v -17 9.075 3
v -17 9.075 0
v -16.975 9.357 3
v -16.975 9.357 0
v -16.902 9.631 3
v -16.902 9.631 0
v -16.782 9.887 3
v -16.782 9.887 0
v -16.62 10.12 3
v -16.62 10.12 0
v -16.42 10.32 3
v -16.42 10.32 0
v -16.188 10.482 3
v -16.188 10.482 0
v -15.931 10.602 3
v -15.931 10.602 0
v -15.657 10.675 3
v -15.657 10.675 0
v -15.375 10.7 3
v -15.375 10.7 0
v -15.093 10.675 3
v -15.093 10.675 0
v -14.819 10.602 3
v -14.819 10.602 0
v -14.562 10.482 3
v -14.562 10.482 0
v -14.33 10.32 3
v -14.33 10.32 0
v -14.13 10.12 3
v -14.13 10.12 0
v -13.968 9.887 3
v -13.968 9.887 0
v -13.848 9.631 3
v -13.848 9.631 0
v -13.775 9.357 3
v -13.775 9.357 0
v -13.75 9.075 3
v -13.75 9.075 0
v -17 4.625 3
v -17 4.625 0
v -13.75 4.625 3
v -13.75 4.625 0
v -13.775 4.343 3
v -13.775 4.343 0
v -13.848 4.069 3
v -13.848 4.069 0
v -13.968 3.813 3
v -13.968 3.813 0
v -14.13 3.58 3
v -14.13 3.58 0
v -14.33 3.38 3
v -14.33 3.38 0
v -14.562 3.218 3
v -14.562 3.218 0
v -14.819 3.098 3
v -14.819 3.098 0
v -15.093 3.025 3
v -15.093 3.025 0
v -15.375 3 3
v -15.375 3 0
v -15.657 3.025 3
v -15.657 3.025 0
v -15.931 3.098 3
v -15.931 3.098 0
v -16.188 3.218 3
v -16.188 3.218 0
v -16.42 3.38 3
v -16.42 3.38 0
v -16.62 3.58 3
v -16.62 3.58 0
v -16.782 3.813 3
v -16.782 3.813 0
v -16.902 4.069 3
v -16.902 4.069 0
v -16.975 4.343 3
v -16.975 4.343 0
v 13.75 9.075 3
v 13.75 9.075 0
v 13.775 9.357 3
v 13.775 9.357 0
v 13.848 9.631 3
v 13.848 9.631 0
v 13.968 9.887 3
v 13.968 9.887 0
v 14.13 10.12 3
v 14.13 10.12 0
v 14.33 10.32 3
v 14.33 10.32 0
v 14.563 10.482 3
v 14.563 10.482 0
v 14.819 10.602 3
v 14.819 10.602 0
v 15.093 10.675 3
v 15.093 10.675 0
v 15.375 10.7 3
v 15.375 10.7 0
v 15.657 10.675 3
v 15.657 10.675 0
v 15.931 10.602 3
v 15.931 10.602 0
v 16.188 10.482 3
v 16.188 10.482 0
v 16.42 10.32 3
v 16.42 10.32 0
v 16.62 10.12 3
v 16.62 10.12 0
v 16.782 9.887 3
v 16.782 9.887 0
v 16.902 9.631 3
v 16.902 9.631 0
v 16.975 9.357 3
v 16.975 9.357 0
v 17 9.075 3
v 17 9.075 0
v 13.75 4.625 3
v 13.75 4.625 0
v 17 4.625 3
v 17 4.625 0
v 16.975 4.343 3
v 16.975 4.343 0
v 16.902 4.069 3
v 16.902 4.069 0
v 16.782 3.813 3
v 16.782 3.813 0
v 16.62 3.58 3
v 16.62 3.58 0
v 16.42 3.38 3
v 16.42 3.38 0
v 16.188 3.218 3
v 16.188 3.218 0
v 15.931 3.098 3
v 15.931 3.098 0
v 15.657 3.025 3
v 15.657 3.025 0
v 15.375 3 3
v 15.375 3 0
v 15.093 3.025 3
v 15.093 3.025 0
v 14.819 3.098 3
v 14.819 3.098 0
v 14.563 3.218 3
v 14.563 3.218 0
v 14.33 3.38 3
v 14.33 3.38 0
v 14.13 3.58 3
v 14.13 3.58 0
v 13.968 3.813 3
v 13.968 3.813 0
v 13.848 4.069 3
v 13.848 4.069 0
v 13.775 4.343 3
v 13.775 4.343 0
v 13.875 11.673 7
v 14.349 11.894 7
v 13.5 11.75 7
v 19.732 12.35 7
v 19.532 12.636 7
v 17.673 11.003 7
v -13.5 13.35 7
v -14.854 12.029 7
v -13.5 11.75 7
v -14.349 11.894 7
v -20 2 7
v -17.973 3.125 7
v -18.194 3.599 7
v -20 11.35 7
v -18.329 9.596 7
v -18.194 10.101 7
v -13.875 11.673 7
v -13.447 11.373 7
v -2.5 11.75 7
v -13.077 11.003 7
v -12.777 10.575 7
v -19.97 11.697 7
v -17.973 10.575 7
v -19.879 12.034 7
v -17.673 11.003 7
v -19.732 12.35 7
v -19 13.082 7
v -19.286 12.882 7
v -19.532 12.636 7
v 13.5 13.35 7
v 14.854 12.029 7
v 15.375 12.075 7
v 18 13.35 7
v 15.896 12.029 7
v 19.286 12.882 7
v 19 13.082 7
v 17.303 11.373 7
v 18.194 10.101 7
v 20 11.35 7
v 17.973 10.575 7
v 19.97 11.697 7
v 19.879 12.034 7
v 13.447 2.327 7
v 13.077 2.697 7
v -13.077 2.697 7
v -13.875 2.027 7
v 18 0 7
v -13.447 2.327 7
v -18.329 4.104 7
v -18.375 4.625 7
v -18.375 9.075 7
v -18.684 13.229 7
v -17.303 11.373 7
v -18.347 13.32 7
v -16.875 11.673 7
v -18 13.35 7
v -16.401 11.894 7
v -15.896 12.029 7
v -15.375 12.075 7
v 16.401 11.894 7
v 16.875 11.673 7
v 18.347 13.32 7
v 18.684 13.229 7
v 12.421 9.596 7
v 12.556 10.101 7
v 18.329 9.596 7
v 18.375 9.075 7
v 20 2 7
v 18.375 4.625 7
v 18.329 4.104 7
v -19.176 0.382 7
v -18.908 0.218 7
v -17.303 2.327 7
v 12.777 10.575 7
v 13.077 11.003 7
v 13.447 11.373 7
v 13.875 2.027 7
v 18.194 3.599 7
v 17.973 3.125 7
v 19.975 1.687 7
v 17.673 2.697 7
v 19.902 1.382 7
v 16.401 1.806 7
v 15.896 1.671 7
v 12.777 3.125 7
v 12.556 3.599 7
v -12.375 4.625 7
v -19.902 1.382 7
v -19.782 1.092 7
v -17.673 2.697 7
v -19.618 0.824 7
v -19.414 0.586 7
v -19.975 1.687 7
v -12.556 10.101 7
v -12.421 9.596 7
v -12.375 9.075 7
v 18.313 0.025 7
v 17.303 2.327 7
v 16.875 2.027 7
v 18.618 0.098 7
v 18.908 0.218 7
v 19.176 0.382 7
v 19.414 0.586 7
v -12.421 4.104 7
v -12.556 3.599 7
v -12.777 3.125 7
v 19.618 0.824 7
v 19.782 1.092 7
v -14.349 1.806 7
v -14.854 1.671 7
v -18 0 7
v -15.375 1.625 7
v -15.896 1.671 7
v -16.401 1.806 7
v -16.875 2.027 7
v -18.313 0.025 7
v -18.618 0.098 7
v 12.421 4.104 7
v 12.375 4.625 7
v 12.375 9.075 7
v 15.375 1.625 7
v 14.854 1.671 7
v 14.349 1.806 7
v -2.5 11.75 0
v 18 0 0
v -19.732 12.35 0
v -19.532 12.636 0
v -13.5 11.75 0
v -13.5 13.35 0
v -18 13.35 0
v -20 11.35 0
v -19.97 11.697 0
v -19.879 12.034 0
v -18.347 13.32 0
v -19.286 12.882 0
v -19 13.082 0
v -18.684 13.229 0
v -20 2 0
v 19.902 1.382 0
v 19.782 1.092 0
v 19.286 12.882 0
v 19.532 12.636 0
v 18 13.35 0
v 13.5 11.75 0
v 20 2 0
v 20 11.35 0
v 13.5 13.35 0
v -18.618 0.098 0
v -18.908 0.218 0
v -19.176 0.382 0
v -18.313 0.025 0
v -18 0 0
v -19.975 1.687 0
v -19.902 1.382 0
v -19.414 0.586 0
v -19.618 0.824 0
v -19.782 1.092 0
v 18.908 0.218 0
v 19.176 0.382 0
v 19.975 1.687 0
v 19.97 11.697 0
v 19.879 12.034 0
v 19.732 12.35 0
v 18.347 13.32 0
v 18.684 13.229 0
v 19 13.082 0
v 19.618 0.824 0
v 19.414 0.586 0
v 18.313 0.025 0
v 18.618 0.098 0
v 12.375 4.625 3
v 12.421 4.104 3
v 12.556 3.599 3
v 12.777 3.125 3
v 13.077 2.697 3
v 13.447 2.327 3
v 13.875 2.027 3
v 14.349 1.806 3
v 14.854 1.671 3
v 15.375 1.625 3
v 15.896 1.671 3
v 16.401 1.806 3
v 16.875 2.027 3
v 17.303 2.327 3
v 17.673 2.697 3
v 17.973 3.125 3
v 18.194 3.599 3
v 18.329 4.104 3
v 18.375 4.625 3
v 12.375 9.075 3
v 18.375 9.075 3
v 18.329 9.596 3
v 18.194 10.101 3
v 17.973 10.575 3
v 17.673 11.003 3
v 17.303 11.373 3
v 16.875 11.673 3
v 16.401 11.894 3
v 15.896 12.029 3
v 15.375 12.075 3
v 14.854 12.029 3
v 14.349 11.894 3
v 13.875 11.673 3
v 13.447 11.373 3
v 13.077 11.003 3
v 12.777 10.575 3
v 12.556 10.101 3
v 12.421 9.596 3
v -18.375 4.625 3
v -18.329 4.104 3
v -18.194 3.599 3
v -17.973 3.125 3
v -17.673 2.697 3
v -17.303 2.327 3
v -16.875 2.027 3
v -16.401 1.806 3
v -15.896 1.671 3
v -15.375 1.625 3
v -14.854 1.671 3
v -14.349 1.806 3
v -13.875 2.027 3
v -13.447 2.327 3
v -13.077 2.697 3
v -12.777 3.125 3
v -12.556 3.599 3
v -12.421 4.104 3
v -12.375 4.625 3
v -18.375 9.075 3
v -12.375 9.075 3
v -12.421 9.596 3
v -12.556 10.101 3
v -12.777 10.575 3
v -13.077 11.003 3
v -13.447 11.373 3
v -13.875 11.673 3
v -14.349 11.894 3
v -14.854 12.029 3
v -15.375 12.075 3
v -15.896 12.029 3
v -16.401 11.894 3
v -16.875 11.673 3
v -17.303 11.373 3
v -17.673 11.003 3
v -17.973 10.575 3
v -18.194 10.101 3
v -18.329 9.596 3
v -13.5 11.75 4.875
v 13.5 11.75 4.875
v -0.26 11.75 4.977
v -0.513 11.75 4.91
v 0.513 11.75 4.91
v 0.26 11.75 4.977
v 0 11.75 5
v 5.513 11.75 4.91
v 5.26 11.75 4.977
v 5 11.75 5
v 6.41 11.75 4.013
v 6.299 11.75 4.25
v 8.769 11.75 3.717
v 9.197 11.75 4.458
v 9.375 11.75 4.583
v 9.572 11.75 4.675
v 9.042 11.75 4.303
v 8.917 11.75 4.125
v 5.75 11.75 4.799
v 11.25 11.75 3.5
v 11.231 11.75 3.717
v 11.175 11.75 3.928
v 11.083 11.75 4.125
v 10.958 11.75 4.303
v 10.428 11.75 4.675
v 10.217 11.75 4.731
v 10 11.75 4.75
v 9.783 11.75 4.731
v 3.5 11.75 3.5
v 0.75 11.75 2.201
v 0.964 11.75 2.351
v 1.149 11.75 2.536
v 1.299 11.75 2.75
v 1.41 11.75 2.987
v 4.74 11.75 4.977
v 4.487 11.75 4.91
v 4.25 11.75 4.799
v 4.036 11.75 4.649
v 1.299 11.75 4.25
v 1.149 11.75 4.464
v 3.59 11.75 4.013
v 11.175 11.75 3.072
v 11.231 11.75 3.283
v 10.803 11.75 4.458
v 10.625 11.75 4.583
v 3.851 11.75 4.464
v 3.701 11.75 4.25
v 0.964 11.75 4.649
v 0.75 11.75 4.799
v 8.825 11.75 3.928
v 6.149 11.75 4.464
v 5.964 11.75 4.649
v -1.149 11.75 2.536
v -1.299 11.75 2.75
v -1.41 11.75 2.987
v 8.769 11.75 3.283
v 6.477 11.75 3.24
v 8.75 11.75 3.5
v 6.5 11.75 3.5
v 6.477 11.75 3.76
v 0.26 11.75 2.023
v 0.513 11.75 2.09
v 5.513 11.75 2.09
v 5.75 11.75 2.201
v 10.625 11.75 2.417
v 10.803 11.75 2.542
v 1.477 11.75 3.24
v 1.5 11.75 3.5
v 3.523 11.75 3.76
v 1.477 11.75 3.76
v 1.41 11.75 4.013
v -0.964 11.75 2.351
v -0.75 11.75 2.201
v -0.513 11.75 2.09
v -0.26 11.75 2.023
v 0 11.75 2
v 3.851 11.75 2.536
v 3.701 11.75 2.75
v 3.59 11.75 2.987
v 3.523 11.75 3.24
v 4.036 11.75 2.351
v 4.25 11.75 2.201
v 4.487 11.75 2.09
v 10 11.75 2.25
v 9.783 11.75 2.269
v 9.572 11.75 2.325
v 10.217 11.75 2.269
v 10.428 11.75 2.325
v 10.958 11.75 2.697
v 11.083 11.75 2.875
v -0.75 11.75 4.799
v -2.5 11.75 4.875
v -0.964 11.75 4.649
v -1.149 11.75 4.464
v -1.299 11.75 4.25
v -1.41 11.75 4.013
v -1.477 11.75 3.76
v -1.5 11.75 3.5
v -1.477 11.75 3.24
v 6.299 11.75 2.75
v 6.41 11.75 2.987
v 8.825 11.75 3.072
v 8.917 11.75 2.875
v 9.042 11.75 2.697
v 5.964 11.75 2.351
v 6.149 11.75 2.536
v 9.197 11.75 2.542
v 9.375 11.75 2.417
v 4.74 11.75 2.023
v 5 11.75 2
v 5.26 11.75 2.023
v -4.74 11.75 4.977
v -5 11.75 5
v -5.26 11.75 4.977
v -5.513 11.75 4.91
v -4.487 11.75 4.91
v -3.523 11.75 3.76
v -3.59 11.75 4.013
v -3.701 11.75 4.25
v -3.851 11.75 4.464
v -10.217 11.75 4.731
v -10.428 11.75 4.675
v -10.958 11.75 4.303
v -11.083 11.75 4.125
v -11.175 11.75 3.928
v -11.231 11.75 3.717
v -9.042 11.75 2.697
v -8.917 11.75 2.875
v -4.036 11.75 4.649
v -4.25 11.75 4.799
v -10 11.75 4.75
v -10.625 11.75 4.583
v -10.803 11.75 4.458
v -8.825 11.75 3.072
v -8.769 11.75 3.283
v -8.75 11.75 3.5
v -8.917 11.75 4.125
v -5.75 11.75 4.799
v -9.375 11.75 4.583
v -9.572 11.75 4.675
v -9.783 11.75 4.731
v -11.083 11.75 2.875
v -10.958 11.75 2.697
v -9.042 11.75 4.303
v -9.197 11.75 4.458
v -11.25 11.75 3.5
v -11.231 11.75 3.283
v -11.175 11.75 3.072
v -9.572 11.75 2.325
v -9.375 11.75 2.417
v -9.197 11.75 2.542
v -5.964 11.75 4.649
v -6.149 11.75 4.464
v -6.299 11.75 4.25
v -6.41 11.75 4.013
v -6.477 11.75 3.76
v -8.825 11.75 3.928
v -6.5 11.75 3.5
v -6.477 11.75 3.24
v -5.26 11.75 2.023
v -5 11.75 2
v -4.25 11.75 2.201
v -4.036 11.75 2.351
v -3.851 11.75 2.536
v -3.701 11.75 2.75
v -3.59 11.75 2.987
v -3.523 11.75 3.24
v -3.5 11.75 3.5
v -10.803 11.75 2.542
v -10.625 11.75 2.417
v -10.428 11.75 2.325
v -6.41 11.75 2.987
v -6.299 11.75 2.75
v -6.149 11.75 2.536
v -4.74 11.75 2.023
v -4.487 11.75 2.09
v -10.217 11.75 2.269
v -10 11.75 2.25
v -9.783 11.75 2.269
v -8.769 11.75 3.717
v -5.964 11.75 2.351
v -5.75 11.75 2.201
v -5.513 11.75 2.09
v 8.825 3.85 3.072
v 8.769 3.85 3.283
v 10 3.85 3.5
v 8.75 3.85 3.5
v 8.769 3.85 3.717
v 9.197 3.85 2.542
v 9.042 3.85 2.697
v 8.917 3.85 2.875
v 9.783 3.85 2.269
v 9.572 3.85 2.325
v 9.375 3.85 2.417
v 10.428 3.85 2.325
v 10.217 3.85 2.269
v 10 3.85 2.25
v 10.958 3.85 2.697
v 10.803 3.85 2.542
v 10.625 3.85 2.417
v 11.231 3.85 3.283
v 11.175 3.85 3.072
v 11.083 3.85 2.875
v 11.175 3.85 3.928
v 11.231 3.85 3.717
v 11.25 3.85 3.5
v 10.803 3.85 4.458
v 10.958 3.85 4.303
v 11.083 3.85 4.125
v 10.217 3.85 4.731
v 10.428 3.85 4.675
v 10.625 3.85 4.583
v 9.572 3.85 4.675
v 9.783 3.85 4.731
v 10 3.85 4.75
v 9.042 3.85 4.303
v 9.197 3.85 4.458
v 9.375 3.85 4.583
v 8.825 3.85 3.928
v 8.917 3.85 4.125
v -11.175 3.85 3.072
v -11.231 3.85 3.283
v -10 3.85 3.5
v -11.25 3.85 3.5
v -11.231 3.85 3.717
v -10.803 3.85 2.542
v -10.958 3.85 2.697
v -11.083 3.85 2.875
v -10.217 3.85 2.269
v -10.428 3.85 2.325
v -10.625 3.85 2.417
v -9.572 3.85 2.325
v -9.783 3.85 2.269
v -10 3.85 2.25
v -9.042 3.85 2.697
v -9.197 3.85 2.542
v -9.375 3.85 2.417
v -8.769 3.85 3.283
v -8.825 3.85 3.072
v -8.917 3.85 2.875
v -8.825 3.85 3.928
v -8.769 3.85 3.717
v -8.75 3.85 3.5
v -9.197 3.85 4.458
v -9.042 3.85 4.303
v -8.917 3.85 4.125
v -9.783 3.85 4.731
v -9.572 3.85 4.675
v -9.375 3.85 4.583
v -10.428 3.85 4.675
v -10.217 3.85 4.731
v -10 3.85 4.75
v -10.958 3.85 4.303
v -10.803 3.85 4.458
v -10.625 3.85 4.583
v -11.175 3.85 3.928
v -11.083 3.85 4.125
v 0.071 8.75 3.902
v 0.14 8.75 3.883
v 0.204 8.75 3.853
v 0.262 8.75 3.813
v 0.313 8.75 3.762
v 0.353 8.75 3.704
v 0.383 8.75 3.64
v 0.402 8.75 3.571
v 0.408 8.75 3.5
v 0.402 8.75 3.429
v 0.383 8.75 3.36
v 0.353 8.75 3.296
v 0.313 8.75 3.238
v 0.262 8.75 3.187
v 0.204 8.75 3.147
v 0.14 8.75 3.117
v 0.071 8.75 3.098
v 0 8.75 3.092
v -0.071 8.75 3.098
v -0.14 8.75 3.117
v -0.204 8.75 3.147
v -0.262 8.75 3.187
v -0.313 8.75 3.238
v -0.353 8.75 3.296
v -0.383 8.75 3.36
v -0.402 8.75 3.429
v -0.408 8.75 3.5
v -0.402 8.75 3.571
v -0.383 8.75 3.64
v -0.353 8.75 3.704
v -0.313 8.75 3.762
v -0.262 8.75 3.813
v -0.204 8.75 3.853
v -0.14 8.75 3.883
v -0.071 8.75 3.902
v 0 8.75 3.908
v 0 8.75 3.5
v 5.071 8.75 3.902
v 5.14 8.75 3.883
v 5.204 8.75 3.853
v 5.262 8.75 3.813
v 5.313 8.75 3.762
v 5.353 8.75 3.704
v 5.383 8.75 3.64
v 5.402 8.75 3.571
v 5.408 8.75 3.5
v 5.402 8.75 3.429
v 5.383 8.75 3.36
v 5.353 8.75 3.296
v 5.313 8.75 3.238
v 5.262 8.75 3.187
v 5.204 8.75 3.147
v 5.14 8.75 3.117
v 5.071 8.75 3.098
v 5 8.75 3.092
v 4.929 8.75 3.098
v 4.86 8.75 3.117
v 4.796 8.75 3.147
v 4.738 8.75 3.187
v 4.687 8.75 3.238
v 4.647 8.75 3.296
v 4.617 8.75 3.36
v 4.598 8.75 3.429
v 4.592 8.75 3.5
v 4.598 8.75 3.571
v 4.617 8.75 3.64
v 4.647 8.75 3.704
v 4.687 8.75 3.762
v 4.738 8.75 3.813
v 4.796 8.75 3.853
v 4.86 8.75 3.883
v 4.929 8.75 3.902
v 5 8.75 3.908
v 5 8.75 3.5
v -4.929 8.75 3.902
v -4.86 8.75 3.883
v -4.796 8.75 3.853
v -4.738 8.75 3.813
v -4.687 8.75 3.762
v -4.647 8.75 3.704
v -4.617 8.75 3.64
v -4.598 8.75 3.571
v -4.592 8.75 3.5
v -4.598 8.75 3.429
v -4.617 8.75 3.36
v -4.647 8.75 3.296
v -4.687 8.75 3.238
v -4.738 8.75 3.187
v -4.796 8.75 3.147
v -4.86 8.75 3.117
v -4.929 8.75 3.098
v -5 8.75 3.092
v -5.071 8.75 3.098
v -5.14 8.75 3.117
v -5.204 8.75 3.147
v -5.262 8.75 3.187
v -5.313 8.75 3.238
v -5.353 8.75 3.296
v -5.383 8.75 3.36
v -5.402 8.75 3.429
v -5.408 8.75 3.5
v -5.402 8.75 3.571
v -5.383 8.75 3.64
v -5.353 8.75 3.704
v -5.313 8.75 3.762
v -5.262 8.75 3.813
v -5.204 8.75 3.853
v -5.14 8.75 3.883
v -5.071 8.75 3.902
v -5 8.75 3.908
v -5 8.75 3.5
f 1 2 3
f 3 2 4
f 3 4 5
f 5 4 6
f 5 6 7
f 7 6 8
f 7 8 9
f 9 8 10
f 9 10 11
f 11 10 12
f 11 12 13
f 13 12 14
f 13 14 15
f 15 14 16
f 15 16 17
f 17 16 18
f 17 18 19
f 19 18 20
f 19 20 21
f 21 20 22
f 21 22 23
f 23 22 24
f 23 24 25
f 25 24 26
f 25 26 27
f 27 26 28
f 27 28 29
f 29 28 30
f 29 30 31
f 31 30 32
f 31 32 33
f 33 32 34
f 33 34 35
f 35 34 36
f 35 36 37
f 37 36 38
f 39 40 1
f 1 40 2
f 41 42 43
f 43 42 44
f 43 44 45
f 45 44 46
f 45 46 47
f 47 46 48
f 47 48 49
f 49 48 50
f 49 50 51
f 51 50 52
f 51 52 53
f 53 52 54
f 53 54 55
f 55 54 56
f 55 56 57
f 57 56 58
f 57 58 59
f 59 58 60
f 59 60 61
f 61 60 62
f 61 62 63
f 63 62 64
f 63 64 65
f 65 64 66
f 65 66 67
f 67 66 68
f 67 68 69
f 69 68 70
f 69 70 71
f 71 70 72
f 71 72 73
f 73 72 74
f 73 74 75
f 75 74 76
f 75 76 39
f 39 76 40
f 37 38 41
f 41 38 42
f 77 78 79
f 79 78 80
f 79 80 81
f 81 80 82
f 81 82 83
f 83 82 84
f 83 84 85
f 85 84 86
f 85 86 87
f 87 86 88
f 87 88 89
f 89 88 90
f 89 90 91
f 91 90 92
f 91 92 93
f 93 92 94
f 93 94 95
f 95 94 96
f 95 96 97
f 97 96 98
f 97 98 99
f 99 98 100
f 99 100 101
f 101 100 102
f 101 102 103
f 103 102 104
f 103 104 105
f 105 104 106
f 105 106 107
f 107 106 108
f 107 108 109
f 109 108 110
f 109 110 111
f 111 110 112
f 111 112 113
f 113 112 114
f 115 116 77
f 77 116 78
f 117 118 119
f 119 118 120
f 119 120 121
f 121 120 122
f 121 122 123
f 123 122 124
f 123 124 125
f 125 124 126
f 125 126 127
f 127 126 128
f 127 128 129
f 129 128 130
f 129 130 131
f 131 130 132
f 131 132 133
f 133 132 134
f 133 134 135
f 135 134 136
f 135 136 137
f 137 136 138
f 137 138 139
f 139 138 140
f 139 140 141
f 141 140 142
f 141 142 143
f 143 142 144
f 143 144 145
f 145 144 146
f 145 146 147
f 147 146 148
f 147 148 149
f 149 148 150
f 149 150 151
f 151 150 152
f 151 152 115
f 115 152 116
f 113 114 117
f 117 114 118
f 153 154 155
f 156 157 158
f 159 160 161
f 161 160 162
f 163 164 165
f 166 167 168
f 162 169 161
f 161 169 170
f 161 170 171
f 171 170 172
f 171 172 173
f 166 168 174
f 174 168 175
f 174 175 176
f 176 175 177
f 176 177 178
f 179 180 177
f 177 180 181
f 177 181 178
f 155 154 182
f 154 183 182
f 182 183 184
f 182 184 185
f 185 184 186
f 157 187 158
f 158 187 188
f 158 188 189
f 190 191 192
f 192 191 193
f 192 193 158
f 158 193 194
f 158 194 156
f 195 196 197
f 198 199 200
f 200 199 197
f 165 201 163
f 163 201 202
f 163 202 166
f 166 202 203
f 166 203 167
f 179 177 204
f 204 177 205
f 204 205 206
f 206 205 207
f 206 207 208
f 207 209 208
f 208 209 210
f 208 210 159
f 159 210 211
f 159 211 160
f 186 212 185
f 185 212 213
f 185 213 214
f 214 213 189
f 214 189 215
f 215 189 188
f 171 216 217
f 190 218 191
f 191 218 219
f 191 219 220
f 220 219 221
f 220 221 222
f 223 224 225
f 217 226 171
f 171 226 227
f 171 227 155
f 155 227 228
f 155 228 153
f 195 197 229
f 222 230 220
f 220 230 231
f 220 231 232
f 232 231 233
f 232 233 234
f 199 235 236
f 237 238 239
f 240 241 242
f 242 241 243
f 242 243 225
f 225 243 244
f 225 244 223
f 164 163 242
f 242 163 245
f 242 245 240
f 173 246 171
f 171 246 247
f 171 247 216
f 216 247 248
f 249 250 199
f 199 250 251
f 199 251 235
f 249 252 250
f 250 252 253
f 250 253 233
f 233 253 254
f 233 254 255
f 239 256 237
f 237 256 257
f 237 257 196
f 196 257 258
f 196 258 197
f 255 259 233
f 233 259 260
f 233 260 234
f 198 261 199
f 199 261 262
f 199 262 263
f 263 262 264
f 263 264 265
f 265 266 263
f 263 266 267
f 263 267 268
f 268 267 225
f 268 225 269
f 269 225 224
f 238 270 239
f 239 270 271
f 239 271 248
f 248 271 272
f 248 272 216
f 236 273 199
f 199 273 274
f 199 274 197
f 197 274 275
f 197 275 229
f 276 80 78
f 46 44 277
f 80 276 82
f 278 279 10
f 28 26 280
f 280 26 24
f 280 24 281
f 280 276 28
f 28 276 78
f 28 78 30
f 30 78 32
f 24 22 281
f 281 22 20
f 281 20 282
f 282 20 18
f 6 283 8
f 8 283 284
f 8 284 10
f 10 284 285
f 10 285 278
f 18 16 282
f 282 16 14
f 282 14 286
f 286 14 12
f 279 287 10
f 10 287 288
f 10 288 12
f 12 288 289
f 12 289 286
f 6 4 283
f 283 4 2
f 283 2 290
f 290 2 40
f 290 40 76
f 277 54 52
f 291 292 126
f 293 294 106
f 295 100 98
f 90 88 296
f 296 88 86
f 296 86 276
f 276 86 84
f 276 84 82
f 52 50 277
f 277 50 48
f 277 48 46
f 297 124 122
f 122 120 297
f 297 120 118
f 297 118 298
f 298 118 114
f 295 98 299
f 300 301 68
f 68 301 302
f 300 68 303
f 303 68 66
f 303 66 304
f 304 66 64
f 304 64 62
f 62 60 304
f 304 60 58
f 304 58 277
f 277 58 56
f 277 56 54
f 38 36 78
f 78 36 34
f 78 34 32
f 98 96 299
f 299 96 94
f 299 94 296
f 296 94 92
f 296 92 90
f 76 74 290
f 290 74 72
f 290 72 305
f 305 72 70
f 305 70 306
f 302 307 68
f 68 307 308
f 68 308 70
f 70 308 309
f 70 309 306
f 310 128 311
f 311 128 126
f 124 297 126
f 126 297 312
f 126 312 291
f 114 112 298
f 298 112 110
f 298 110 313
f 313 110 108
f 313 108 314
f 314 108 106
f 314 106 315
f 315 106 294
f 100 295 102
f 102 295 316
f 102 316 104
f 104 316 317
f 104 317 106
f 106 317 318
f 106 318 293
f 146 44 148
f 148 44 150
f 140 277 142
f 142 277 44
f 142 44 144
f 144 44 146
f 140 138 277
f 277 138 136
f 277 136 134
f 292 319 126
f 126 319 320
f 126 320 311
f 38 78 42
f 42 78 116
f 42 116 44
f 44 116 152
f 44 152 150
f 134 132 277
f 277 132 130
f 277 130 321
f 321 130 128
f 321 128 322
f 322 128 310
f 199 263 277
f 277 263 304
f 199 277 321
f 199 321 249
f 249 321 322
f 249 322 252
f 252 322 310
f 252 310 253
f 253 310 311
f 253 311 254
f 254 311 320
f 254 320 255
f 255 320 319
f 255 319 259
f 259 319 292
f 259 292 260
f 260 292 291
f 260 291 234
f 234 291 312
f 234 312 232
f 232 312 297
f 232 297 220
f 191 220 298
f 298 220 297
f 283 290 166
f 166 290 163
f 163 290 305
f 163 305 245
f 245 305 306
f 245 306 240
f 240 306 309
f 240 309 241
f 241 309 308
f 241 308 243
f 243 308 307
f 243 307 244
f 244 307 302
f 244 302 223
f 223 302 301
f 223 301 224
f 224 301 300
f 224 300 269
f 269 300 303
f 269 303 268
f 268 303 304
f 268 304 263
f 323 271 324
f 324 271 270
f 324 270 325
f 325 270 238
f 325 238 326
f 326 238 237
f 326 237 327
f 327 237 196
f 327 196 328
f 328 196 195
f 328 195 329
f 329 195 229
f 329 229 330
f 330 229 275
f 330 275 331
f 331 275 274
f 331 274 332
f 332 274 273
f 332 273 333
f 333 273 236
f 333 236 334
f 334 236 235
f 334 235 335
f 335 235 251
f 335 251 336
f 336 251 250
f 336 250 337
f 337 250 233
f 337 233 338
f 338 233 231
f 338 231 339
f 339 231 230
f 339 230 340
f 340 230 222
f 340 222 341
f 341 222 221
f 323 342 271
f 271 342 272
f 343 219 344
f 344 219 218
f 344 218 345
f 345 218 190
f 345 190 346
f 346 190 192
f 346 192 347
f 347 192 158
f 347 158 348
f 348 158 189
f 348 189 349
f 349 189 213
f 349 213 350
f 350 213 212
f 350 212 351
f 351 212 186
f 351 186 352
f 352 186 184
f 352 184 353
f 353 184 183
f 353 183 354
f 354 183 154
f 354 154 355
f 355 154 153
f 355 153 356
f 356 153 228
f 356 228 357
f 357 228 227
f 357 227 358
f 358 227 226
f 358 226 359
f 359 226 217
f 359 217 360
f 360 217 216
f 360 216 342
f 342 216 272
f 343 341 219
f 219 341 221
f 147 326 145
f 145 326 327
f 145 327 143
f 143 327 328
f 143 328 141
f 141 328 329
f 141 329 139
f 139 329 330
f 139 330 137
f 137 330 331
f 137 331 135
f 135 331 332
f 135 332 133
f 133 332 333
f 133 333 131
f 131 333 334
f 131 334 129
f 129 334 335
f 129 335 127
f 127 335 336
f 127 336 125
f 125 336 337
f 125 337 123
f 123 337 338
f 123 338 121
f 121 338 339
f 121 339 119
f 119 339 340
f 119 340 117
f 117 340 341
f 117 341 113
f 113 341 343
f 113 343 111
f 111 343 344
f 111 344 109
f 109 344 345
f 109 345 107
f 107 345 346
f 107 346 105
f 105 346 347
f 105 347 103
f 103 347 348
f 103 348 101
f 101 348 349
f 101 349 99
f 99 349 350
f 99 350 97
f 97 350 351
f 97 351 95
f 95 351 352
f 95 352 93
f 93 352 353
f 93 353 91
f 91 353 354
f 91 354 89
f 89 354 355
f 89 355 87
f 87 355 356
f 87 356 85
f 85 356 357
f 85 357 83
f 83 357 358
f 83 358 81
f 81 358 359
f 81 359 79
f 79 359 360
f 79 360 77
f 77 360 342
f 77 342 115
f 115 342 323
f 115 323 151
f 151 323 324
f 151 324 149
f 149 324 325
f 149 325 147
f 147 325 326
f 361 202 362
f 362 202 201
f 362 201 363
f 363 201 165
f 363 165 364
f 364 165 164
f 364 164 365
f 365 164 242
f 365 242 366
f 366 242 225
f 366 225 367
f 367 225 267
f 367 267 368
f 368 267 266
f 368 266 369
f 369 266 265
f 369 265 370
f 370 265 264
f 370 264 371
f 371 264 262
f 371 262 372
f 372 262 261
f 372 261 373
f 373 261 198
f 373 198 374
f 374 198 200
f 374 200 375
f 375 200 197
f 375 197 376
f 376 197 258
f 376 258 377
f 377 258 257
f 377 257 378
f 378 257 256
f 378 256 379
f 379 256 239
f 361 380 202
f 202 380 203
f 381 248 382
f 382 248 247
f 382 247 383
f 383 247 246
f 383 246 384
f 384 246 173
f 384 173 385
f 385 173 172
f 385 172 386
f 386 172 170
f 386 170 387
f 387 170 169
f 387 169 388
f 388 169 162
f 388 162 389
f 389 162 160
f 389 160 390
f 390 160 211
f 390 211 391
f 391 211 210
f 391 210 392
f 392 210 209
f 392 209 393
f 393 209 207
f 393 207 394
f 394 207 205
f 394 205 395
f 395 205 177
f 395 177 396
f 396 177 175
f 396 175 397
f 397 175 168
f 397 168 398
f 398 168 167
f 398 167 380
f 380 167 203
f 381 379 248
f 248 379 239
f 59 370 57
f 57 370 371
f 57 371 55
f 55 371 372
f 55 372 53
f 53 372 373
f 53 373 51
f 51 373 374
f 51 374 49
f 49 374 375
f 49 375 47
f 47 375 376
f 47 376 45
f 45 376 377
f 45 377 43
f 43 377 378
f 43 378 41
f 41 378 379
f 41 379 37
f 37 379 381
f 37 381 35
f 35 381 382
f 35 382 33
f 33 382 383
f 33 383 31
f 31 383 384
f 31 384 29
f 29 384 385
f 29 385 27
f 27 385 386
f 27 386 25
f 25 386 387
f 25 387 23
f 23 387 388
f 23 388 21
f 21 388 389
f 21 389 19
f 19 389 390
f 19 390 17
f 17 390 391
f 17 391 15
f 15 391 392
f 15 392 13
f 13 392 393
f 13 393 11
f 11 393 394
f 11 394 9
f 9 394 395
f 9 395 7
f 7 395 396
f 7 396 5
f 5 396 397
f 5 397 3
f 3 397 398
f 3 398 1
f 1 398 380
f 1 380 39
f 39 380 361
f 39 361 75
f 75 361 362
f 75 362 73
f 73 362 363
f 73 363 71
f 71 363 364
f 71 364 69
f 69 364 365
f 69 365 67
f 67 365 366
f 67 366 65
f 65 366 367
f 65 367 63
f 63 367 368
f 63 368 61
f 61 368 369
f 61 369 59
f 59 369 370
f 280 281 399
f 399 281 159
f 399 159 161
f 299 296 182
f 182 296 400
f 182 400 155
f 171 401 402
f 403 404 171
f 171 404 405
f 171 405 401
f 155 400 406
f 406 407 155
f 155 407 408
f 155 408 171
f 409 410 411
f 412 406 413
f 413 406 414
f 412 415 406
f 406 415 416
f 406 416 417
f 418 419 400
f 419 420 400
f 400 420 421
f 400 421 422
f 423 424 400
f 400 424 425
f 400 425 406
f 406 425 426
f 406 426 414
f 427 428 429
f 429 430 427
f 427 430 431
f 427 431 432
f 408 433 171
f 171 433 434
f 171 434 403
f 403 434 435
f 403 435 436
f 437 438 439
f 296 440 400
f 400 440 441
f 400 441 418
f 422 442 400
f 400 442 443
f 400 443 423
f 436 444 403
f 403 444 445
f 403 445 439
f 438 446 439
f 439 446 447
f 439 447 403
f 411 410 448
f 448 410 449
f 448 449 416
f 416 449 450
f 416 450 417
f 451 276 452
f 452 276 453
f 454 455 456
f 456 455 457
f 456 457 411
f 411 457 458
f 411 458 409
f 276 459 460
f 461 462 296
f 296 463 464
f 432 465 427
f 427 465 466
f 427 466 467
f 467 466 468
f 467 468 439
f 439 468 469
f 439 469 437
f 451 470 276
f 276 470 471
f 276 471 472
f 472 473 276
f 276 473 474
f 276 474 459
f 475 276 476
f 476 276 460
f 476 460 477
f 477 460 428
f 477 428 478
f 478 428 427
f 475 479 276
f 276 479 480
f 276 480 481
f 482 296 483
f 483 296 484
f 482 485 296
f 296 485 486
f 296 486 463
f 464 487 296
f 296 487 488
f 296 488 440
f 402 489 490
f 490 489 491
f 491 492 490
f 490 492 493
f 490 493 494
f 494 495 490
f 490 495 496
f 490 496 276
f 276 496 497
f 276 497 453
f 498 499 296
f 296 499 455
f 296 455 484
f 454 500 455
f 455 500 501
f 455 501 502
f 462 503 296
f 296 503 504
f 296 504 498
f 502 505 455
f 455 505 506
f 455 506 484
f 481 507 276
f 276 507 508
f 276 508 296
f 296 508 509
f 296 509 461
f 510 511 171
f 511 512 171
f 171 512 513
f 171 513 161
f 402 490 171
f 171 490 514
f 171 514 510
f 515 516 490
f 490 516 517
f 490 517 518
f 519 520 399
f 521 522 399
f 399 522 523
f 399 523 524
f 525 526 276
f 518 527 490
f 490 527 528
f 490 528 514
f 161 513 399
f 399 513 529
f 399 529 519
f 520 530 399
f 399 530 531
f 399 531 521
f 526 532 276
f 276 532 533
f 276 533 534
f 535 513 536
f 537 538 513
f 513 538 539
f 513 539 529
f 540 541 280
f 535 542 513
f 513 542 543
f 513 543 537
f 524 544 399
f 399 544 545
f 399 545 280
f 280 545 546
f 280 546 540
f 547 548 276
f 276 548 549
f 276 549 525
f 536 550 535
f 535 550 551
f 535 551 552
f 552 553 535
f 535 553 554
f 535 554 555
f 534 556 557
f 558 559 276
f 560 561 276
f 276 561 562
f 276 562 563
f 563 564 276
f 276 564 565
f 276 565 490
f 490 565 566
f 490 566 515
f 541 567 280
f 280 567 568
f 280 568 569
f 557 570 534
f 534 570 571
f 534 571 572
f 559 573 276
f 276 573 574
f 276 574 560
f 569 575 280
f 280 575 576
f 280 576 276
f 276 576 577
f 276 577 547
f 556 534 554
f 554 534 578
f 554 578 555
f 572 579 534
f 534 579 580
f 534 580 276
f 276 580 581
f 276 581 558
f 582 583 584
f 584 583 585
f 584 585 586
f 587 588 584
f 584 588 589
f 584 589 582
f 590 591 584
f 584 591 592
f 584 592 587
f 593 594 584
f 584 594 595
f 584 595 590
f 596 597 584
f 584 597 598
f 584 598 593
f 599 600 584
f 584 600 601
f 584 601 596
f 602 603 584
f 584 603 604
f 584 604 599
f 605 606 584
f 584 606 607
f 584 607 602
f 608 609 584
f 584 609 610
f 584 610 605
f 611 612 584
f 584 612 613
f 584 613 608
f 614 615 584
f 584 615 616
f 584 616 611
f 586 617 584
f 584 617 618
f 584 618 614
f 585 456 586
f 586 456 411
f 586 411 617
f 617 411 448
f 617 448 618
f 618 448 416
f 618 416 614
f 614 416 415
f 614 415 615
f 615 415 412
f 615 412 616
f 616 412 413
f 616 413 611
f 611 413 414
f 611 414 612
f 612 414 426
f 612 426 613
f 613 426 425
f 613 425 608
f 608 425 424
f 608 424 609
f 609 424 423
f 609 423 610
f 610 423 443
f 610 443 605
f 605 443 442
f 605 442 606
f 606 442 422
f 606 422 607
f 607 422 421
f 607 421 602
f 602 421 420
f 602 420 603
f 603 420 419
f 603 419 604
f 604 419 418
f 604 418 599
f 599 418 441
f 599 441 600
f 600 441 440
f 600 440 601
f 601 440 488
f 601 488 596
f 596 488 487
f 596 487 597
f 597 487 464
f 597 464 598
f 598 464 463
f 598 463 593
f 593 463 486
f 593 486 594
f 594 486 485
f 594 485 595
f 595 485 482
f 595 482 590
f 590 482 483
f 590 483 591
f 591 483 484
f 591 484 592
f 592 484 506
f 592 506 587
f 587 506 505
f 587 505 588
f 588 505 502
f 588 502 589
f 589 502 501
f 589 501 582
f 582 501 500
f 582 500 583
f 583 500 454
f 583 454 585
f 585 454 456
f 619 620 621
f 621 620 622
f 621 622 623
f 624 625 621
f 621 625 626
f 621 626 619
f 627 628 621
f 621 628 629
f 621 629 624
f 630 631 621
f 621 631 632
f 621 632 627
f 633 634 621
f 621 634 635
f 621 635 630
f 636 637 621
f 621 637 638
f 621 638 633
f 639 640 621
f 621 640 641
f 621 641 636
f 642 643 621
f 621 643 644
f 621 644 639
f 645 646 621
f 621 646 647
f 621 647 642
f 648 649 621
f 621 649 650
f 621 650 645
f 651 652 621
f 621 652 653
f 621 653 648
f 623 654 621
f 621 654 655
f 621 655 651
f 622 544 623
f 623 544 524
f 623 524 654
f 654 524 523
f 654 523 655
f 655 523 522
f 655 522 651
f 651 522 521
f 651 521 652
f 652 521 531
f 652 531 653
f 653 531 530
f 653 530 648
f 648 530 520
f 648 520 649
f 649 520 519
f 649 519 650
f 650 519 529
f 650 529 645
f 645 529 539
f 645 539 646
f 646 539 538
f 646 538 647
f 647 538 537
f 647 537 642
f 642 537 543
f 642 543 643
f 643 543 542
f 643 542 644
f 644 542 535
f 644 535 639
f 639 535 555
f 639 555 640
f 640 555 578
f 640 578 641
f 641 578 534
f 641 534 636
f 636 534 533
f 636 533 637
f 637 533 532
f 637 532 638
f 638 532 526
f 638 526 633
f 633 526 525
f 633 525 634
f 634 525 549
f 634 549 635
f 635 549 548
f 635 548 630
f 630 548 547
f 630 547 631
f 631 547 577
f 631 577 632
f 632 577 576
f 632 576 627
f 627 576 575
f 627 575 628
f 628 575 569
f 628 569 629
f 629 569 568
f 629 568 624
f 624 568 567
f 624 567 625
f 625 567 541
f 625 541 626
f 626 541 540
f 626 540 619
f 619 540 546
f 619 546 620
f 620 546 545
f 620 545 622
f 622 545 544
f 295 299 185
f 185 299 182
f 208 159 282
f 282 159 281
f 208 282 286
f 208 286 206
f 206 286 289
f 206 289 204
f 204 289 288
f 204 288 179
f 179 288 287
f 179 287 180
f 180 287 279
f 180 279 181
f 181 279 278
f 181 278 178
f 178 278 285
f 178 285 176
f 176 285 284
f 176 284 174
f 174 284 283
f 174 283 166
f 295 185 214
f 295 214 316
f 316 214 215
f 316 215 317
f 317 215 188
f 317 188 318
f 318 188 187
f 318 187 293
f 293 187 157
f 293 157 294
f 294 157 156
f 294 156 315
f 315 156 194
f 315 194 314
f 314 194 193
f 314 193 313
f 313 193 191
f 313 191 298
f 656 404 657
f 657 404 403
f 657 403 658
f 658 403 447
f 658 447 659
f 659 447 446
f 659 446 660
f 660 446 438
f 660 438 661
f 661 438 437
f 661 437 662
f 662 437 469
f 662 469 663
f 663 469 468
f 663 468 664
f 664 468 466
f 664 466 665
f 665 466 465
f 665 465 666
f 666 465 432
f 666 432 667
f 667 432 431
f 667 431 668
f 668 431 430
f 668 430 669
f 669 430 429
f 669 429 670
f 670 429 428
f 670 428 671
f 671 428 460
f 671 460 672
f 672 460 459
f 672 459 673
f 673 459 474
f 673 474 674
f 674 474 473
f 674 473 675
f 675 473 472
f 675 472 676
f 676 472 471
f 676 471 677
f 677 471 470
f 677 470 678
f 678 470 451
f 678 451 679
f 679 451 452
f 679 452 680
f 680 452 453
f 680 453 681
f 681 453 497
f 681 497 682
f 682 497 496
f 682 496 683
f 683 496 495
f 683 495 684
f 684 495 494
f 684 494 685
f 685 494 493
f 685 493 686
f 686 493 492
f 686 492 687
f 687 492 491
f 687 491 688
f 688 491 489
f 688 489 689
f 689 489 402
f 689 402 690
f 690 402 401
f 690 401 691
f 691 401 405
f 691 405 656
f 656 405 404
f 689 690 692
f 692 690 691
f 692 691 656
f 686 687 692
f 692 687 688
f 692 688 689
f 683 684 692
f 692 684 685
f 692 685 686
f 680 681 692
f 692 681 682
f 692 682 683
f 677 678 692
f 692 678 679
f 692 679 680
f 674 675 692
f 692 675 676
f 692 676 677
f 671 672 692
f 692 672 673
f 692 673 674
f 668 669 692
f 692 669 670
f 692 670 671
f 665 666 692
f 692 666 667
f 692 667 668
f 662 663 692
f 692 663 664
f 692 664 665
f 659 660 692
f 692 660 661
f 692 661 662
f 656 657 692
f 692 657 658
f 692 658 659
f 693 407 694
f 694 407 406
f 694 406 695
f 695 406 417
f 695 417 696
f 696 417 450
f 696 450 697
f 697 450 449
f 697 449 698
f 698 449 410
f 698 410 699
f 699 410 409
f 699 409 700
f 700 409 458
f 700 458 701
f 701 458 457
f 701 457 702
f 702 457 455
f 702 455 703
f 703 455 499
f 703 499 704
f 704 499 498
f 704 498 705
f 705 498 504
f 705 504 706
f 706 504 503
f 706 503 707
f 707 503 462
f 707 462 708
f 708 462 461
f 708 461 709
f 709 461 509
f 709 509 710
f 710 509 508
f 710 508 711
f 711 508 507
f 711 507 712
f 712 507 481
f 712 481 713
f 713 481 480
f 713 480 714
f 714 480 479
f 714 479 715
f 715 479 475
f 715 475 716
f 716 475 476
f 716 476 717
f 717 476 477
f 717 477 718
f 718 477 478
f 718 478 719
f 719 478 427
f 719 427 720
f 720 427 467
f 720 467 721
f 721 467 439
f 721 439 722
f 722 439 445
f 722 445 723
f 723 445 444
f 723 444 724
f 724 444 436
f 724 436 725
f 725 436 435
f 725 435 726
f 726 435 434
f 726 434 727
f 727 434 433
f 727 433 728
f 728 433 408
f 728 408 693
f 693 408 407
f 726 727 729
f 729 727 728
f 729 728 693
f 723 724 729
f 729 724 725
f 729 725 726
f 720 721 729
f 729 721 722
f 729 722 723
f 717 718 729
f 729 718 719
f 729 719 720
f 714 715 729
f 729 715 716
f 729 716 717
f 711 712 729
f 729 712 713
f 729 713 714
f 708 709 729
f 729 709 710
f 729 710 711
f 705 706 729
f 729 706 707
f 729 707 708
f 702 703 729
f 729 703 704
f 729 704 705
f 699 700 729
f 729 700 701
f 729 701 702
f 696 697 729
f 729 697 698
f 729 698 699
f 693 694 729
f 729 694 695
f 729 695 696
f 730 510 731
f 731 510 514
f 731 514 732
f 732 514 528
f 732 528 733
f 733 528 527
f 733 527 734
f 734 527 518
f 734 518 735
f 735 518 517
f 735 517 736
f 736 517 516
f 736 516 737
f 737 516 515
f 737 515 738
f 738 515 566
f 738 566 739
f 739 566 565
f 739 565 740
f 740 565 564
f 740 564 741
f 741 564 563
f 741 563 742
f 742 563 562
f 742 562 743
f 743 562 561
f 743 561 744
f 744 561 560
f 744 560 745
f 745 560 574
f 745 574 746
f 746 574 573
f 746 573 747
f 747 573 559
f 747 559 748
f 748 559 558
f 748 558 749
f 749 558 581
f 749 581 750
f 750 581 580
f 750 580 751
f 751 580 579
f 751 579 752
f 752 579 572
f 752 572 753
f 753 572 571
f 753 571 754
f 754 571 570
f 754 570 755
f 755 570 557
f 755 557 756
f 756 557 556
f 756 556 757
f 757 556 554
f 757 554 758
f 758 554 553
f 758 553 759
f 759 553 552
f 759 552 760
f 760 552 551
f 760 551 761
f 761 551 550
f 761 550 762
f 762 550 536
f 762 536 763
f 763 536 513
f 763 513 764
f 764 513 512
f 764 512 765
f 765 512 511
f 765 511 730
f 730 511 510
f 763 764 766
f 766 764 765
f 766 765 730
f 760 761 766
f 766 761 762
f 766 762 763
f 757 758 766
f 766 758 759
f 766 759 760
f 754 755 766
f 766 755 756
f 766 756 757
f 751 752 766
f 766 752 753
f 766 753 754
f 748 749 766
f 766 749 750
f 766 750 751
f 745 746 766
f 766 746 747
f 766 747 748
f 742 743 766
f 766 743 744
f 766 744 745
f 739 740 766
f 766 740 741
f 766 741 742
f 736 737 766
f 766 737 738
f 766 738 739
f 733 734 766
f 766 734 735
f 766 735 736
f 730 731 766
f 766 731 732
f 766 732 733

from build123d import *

# Parameters (mm, degrees)
BOSS_EXTRUDE1_DEPTH            = 7
SCREWHEADCLEARANCE_DEPTH       = 4
PCB_CUTOUT_DEPTH               = 30.03484975
SKETCH8_R                      = 1.25
SCREWTHREADS_DEPTH             = 16
SKETCH9_R                      = 3
CUT_EXTRUDE6_DEPTH             = 8.1
SKETCH10_W                     = 40
SKETCH10_H                     = 6.5
CUT_EXTRUDE7_DEPTH             = 30.034849842
FILLET1_R                      = 2
SKETCH11_R                     = 1.5
CLEARANCEHOLES_DEPTH           = 3
CLEARANCEHOLES_DRAFT           = -20
CLEARANCEHOLES_PROFILE_2_DEPTH = 3
CLEARANCEHOLES_PROFILE_2_DRAFT = -20
CLEARANCEHOLES_PROFILE_3_DEPTH = 3
CLEARANCEHOLES_PROFILE_3_DRAFT = -20


with BuildPart() as part:
    # Sketch1 → Boss-Extrude1 (new body)
    with BuildSketch(Plane.XY):
        with BuildLine():
            Line((0, 0), (18, 0))
            ThreePointArc((18, 0), (19.414213562, 0.585786438), (20, 2))
            Line((20, 2), (20, 11.945768163))
            ThreePointArc((20, 11.945768163), (19.769252649, 12.878369398), (19.130254936, 13.595775369))
            Line((19.130254936, 13.595775369), (10.510938386, 19.500007206))
            ThreePointArc((10.510938386, 19.500007206), (9.972285338, 19.760499203), (9.380683449, 19.85))
            Line((9.380683449, 19.85), (-9.380683449, 19.85))
            ThreePointArc((-9.380683449, 19.85), (-9.972285338, 19.760499203), (-10.510938386, 19.500007206))
            Line((-10.510938386, 19.500007206), (-19.130254936, 13.595775369))
            ThreePointArc((-19.130254936, 13.595775369), (-19.769252649, 12.878369398), (-20, 11.945768163))
            Line((-20, 11.945768163), (-20, 2))
            ThreePointArc((-20, 2), (-19.414213562, 0.585786438), (-18, 0))
            Line((-18, 0), (0, 0))
        make_face()
        with BuildLine():
            Line((-13.75, 9.075), (-13.75, 4.625))
            ThreePointArc((-13.75, 4.625), (-15.375, 3), (-17, 4.625))
            Line((-17, 4.625), (-17, 9.075))
            ThreePointArc((-17, 9.075), (-15.375, 10.7), (-13.75, 9.075))
        make_face(mode=Mode.SUBTRACT)
        with BuildLine():
            Line((17, 9.075), (17, 4.625))
            ThreePointArc((17, 4.625), (15.375, 3), (13.75, 4.625))
            Line((13.75, 4.625), (13.75, 9.075))
            ThreePointArc((13.75, 9.075), (15.375, 10.7), (17, 9.075))
        make_face(mode=Mode.SUBTRACT)
    extrude(amount=BOSS_EXTRUDE1_DEPTH)

    # Sketch2 → ScrewHeadClearance (cut)
    with BuildSketch(Plane.XY.offset(7)):
        with BuildLine():
            Line((-18.375, 4.625), (-18.375, 9.075))
            ThreePointArc((-18.375, 9.075), (-15.375, 12.075), (-12.375, 9.075))
            Line((-12.375, 9.075), (-12.375, 4.625))
            ThreePointArc((-12.375, 4.625), (-15.375, 1.625), (-18.375, 4.625))
        make_face()
        with BuildLine():
            Line((12.375, 4.625), (12.375, 9.075))
            ThreePointArc((12.375, 9.075), (15.375, 12.075), (18.375, 9.075))
            Line((18.375, 9.075), (18.375, 4.625))
            ThreePointArc((18.375, 4.625), (15.375, 1.625), (12.375, 4.625))
        make_face()
    extrude(amount=-SCREWHEADCLEARANCE_DEPTH, mode=Mode.SUBTRACT)

    # Sketch6 → PCB Cutout (cut, through all)
    with BuildSketch(Plane.XY.offset(7)):
        Polygon((-13.5, 13.35), (-6.5, 13.35), (-6.5, 19.85), (6.5, 19.85), (6.5, 13.35), (13.5, 13.35), (13.5, 11.75), (-13.5, 11.75), align=None)
    extrude(amount=-PCB_CUTOUT_DEPTH, mode=Mode.SUBTRACT)

    # Sketch8 → ScrewThreads (cut)
    with BuildSketch(Plane(origin=(0, 19.85, 0), x_dir=(1, 0, 0), z_dir=(0, 1, 0))):
        with Locations(Location((-10, -3.5, 0), (0, 0, 180))):
            Circle(SKETCH8_R)
        with Locations(Location((10, -3.5, 0), (0, 0, 180))):
            Circle(SKETCH8_R)
    extrude(amount=-SCREWTHREADS_DEPTH, mode=Mode.SUBTRACT)

    # Sketch9 → Cut-Extrude6 (cut)
    with BuildSketch(Plane(origin=(0, 19.85, 0), x_dir=(1, 0, 0), z_dir=(0, 1, 0))):
        with Locations(Location((10, -3.5, 0), (0, 0, 101.913740948))):
            Circle(SKETCH9_R)
        with Locations(Location((-10, -3.5, 0), (0, 0, 99.806006121))):
            Circle(SKETCH9_R)
    extrude(amount=-CUT_EXTRUDE6_DEPTH, mode=Mode.SUBTRACT)

    # Sketch10 → Cut-Extrude7 (cut, through all)
    with BuildSketch(Plane.XY.offset(7)):
        with Locations((0, 16.6)):
            Rectangle(SKETCH10_W, SKETCH10_H)
    extrude(amount=-CUT_EXTRUDE7_DEPTH, mode=Mode.SUBTRACT)

    # Fillet1
    # the kernel refuses this fillet: 2 mm, written as the material it takes off along each edge
    with BuildSketch(Plane(origin=(-19.424125327, 13.35, 12.203143064), x_dir=(-0.27669557885699486, -0.9609576247894558, 0), z_dir=(0, 0, -1))) as fillet1_piece_1:
        with BuildLine():
            CenterArc((1.527866068, -1.92191525), FILLET1_R, 73.936914891, 90)
            Line((-0.394049182, -1.368524092), (-0.586240707, -1.313184976))
            Line((-0.586240707, -1.313184976), (-0.192191525, 0.055339116))
            Line((-0.192191525, 0.055339116), (-0.095535811, 0.175706883))
            ThreePointArc((-0.095535811, 0.175706883), (1.564088383, 0.357037942), (2.136596341, 0.192191525))
            Line((2.136596341, 0.192191525), (2.081257226, 0))
        make_face()
    extrude(amount=17.406286128, mode=Mode.SUBTRACT)
    with BuildSketch(Plane(origin=(19.424125327, 13.35, 12.203143064), x_dir=(-1, 0, 0), z_dir=(0, 0, -1))) as fillet1_piece_2:
        with BuildLine():
            CenterArc((1.424125327, -2), FILLET1_R, 90, 90)
            Line((-0.575874673, -2), (-0.775874673, -2))
            ThreePointArc((-0.775874673, -2), (-0.775874673, -1.404231837), (-0.142412533, 0.140423184))
            Line((-0.142412533, 0.140423184), (0, 0.2))
            Line((0, 0.2), (1.424125327, 0.2))
            Line((1.424125327, 0.2), (1.424125327, 0))
        make_face()
    extrude(amount=17.406286128, mode=Mode.SUBTRACT)


with BuildPart() as clearanceholes_tool:
    # Sketch11 → ClearanceHoles (with draft: the straight prism first)
    with BuildSketch(Plane(origin=(0, 11.75, 0), x_dir=(1, 0, 0), z_dir=(0, 1, 0))):
        with Locations((0, -3.5)):
            Circle(SKETCH11_R)
    extrude(amount=-CLEARANCEHOLES_DEPTH)
    # ClearanceHoles: the draft: its side faces are tilted about the plane it starts from
    clearanceholes_sides = [clearanceholes_tool.faces().sort_by_distance(p)[0] for p in [
        (-1.5, 10.25, 3.5),
    ]]
    draft(clearanceholes_sides, Plane(origin=(0, 11.75, 0), x_dir=(1, 0, 0), z_dir=(0, 1, 0)), CLEARANCEHOLES_DRAFT)


with BuildPart() as part_1:
    add(part.part)

    # ClearanceHoles: cut by clearanceholes_tool
    add(clearanceholes_tool.part, mode=Mode.SUBTRACT)


with BuildPart() as clearanceholes_profile_2_tool:
    # Sketch11 → ClearanceHoles profile 2 (with draft: the straight prism first)
    with BuildSketch(Plane(origin=(0, 11.75, 0), x_dir=(1, 0, 0), z_dir=(0, 1, 0))):
        with Locations((5, -3.5)):
            Circle(SKETCH11_R)
    extrude(amount=-CLEARANCEHOLES_PROFILE_2_DEPTH)
    # ClearanceHoles profile 2: the draft: its side faces are tilted about the plane it starts from
    clearanceholes_profile_2_sides = [clearanceholes_profile_2_tool.faces().sort_by_distance(p)[0] for p in [
        (3.5, 10.25, 3.5),
    ]]
    draft(clearanceholes_profile_2_sides, Plane(origin=(0, 11.75, 0), x_dir=(1, 0, 0), z_dir=(0, 1, 0)), CLEARANCEHOLES_PROFILE_2_DRAFT)


with BuildPart() as part_2:
    add(part_1.part)

    # ClearanceHoles profile 2: cut by clearanceholes_profile_2_tool
    add(clearanceholes_profile_2_tool.part, mode=Mode.SUBTRACT)


with BuildPart() as clearanceholes_profile_3_tool:
    # Sketch11 → ClearanceHoles profile 3 (with draft: the straight prism first)
    with BuildSketch(Plane(origin=(0, 11.75, 0), x_dir=(1, 0, 0), z_dir=(0, 1, 0))):
        with Locations((-5, -3.5)):
            Circle(SKETCH11_R)
    extrude(amount=-CLEARANCEHOLES_PROFILE_3_DEPTH)
    # ClearanceHoles profile 3: the draft: its side faces are tilted about the plane it starts from
    clearanceholes_profile_3_sides = [clearanceholes_profile_3_tool.faces().sort_by_distance(p)[0] for p in [
        (-6.5, 10.25, 3.5),
    ]]
    draft(clearanceholes_profile_3_sides, Plane(origin=(0, 11.75, 0), x_dir=(1, 0, 0), z_dir=(0, 1, 0)), CLEARANCEHOLES_PROFILE_3_DRAFT)


with BuildPart() as part_3:
    add(part_2.part)

    # ClearanceHoles profile 3: cut by clearanceholes_profile_3_tool
    add(clearanceholes_profile_3_tool.part, mode=Mode.SUBTRACT)


solid = part_3.part
